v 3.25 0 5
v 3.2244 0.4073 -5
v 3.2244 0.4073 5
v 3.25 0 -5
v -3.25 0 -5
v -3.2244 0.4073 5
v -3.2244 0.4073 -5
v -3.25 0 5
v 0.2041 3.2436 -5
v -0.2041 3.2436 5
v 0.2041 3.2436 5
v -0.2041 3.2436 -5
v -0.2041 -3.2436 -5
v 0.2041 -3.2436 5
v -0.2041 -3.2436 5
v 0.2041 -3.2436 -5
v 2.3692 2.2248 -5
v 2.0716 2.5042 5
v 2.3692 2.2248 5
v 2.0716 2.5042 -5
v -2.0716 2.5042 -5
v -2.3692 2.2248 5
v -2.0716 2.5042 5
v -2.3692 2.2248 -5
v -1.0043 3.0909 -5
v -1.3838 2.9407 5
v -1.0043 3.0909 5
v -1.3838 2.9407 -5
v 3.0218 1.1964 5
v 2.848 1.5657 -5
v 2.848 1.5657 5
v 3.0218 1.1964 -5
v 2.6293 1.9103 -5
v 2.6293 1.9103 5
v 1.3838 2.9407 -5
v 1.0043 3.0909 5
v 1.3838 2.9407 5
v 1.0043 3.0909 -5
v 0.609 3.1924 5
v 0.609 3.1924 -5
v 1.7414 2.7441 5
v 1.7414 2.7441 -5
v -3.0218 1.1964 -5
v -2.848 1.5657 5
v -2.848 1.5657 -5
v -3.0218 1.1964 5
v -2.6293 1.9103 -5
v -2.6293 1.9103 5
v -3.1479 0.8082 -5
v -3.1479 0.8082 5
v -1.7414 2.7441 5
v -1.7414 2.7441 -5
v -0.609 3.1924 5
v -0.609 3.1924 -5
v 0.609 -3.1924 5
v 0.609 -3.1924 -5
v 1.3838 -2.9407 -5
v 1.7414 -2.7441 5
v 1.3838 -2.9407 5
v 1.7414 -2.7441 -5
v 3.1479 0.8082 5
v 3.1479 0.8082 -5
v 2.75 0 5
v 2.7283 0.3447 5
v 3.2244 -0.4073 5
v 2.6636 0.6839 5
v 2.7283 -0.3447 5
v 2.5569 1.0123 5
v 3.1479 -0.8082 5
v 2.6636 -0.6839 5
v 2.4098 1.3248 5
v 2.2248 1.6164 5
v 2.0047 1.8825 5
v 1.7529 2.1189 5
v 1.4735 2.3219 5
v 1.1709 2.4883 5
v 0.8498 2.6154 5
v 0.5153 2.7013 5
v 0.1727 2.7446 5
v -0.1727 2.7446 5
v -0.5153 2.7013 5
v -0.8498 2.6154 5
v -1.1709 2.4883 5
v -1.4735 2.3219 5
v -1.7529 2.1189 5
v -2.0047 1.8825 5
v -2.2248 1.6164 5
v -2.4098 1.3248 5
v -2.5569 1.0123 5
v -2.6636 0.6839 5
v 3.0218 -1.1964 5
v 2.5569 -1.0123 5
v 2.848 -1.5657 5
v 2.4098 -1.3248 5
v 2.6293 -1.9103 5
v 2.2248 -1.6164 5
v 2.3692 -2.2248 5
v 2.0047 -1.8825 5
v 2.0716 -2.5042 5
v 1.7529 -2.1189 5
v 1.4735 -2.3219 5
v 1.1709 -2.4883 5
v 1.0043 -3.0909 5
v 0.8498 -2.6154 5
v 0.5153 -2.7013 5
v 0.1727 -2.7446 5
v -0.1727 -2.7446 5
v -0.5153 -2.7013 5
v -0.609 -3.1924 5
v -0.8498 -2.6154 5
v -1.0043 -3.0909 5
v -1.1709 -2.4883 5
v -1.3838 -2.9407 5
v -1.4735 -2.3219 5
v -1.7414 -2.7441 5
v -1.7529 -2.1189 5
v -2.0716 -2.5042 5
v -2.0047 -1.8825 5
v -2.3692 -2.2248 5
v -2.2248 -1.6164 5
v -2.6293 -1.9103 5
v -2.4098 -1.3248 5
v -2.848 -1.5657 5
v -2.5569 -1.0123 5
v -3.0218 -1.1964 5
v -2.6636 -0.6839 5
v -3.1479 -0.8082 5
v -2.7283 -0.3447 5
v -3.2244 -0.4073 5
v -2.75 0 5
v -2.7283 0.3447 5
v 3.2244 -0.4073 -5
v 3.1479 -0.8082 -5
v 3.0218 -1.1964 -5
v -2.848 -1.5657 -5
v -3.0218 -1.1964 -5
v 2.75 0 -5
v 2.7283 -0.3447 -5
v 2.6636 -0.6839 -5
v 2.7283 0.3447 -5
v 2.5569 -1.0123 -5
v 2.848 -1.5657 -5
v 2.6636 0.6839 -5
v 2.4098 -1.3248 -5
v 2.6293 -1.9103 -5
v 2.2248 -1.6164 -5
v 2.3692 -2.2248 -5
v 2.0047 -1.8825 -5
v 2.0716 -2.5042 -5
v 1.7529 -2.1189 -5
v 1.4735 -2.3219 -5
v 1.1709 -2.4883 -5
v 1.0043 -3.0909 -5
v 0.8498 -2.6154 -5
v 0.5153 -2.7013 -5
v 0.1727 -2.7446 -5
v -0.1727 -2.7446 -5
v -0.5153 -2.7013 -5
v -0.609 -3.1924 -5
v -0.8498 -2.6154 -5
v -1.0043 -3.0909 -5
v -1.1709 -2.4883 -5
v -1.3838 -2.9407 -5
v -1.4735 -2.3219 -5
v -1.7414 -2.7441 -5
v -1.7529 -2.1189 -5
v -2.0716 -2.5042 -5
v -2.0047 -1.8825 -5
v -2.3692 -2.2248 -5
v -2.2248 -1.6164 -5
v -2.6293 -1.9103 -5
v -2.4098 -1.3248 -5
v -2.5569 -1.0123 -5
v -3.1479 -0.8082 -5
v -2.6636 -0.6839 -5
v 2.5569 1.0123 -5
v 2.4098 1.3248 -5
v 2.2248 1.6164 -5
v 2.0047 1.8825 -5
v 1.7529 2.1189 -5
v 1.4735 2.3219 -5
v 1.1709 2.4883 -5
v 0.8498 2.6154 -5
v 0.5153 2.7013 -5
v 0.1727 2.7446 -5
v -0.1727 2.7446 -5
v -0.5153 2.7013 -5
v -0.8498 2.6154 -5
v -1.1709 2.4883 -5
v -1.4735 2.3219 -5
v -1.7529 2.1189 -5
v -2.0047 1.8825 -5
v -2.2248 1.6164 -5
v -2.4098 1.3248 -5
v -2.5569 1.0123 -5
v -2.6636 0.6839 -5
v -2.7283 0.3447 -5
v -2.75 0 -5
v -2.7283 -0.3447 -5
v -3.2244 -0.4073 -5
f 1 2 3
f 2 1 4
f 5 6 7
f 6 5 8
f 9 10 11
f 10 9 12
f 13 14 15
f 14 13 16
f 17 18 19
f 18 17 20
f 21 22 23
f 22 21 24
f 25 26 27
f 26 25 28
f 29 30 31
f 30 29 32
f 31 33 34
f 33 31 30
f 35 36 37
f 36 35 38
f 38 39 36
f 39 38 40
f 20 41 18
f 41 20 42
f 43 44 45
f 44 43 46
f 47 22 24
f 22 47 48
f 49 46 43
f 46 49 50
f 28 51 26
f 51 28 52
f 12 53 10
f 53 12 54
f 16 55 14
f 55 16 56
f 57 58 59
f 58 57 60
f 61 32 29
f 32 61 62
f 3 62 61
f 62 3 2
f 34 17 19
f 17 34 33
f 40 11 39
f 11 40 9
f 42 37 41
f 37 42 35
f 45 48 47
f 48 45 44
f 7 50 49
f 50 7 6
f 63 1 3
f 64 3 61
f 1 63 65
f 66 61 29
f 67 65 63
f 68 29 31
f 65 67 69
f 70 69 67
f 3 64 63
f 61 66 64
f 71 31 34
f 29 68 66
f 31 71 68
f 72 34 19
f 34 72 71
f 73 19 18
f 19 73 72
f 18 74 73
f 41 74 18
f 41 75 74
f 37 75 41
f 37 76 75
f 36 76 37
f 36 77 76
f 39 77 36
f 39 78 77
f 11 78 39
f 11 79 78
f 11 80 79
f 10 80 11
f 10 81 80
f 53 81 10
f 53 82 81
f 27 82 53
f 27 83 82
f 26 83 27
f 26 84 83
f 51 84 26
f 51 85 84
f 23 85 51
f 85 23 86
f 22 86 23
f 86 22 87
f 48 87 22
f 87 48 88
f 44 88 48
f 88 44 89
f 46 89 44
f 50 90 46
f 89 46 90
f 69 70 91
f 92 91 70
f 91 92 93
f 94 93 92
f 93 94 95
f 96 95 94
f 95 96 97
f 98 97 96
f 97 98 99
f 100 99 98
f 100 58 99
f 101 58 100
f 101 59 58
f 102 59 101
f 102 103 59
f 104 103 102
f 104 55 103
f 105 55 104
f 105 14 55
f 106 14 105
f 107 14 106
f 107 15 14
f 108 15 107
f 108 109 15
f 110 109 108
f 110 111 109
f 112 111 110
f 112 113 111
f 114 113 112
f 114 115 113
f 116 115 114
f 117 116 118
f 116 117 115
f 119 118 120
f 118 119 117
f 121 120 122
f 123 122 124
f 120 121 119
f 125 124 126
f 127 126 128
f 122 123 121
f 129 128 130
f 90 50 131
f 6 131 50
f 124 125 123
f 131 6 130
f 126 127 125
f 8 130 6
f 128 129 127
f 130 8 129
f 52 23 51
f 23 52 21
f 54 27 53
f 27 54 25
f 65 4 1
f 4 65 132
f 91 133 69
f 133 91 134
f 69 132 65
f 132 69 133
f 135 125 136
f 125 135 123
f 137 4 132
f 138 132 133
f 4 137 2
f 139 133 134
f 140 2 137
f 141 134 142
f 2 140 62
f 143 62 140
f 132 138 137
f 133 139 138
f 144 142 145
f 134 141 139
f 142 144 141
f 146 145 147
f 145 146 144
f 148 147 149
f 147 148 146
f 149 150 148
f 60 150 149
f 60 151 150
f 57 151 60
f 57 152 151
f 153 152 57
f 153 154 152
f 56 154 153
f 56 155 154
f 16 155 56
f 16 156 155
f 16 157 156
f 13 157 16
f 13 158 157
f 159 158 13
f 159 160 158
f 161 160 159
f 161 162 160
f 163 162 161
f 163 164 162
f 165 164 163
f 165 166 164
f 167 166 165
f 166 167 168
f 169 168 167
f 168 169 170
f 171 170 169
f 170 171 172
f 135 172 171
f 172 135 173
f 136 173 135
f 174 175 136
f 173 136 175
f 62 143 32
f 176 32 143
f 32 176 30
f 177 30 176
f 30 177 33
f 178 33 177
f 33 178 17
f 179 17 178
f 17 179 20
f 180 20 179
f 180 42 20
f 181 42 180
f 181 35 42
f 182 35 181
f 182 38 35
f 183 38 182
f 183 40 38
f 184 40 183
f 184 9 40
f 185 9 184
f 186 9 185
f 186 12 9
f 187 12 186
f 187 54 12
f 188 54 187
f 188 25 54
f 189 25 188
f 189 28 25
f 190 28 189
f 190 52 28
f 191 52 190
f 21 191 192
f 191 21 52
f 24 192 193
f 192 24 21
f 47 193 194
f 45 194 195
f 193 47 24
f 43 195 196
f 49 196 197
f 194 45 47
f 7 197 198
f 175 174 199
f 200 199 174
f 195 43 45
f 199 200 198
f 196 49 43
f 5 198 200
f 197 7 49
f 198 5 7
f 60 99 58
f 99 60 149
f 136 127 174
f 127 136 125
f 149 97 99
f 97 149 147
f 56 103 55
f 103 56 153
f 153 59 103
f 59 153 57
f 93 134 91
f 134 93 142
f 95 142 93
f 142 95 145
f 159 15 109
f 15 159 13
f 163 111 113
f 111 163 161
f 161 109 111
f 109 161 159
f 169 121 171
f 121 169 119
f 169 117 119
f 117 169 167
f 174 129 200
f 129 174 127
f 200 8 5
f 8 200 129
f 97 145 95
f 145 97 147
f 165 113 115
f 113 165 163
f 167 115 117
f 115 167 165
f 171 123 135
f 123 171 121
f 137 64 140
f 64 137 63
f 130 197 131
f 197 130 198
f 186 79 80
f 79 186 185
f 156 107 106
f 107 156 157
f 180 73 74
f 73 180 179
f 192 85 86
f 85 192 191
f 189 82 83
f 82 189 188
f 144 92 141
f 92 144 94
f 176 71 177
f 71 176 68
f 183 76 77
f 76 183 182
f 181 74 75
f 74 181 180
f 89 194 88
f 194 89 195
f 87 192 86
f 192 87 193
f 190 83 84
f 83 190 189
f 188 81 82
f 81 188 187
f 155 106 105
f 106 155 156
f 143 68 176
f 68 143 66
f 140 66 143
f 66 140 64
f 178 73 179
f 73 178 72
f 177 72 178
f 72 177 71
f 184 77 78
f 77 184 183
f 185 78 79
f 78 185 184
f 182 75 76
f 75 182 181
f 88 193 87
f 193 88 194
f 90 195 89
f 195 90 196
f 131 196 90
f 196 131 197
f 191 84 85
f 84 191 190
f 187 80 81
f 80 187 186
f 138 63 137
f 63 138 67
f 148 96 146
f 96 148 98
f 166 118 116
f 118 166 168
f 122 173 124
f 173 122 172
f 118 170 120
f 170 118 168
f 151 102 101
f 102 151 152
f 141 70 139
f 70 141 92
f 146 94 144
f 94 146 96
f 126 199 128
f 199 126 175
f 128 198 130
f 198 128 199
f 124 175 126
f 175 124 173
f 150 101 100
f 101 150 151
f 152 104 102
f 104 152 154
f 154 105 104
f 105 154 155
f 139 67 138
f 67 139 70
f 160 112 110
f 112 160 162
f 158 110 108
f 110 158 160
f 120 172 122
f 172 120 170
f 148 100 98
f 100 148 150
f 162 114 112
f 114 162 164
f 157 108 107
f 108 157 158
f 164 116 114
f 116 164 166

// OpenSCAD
$fn = 50;


difference() {
	union() {
		translate(v = [0, 0, -5.0000000000]) {
			cylinder(h = 10, r = 3.2500000000);
		}
	}
	union() {
		translate(v = [0, 0, -100.0000000000]) {
			cylinder(h = 200, r = 2.7500000000);
		}
	}
}
